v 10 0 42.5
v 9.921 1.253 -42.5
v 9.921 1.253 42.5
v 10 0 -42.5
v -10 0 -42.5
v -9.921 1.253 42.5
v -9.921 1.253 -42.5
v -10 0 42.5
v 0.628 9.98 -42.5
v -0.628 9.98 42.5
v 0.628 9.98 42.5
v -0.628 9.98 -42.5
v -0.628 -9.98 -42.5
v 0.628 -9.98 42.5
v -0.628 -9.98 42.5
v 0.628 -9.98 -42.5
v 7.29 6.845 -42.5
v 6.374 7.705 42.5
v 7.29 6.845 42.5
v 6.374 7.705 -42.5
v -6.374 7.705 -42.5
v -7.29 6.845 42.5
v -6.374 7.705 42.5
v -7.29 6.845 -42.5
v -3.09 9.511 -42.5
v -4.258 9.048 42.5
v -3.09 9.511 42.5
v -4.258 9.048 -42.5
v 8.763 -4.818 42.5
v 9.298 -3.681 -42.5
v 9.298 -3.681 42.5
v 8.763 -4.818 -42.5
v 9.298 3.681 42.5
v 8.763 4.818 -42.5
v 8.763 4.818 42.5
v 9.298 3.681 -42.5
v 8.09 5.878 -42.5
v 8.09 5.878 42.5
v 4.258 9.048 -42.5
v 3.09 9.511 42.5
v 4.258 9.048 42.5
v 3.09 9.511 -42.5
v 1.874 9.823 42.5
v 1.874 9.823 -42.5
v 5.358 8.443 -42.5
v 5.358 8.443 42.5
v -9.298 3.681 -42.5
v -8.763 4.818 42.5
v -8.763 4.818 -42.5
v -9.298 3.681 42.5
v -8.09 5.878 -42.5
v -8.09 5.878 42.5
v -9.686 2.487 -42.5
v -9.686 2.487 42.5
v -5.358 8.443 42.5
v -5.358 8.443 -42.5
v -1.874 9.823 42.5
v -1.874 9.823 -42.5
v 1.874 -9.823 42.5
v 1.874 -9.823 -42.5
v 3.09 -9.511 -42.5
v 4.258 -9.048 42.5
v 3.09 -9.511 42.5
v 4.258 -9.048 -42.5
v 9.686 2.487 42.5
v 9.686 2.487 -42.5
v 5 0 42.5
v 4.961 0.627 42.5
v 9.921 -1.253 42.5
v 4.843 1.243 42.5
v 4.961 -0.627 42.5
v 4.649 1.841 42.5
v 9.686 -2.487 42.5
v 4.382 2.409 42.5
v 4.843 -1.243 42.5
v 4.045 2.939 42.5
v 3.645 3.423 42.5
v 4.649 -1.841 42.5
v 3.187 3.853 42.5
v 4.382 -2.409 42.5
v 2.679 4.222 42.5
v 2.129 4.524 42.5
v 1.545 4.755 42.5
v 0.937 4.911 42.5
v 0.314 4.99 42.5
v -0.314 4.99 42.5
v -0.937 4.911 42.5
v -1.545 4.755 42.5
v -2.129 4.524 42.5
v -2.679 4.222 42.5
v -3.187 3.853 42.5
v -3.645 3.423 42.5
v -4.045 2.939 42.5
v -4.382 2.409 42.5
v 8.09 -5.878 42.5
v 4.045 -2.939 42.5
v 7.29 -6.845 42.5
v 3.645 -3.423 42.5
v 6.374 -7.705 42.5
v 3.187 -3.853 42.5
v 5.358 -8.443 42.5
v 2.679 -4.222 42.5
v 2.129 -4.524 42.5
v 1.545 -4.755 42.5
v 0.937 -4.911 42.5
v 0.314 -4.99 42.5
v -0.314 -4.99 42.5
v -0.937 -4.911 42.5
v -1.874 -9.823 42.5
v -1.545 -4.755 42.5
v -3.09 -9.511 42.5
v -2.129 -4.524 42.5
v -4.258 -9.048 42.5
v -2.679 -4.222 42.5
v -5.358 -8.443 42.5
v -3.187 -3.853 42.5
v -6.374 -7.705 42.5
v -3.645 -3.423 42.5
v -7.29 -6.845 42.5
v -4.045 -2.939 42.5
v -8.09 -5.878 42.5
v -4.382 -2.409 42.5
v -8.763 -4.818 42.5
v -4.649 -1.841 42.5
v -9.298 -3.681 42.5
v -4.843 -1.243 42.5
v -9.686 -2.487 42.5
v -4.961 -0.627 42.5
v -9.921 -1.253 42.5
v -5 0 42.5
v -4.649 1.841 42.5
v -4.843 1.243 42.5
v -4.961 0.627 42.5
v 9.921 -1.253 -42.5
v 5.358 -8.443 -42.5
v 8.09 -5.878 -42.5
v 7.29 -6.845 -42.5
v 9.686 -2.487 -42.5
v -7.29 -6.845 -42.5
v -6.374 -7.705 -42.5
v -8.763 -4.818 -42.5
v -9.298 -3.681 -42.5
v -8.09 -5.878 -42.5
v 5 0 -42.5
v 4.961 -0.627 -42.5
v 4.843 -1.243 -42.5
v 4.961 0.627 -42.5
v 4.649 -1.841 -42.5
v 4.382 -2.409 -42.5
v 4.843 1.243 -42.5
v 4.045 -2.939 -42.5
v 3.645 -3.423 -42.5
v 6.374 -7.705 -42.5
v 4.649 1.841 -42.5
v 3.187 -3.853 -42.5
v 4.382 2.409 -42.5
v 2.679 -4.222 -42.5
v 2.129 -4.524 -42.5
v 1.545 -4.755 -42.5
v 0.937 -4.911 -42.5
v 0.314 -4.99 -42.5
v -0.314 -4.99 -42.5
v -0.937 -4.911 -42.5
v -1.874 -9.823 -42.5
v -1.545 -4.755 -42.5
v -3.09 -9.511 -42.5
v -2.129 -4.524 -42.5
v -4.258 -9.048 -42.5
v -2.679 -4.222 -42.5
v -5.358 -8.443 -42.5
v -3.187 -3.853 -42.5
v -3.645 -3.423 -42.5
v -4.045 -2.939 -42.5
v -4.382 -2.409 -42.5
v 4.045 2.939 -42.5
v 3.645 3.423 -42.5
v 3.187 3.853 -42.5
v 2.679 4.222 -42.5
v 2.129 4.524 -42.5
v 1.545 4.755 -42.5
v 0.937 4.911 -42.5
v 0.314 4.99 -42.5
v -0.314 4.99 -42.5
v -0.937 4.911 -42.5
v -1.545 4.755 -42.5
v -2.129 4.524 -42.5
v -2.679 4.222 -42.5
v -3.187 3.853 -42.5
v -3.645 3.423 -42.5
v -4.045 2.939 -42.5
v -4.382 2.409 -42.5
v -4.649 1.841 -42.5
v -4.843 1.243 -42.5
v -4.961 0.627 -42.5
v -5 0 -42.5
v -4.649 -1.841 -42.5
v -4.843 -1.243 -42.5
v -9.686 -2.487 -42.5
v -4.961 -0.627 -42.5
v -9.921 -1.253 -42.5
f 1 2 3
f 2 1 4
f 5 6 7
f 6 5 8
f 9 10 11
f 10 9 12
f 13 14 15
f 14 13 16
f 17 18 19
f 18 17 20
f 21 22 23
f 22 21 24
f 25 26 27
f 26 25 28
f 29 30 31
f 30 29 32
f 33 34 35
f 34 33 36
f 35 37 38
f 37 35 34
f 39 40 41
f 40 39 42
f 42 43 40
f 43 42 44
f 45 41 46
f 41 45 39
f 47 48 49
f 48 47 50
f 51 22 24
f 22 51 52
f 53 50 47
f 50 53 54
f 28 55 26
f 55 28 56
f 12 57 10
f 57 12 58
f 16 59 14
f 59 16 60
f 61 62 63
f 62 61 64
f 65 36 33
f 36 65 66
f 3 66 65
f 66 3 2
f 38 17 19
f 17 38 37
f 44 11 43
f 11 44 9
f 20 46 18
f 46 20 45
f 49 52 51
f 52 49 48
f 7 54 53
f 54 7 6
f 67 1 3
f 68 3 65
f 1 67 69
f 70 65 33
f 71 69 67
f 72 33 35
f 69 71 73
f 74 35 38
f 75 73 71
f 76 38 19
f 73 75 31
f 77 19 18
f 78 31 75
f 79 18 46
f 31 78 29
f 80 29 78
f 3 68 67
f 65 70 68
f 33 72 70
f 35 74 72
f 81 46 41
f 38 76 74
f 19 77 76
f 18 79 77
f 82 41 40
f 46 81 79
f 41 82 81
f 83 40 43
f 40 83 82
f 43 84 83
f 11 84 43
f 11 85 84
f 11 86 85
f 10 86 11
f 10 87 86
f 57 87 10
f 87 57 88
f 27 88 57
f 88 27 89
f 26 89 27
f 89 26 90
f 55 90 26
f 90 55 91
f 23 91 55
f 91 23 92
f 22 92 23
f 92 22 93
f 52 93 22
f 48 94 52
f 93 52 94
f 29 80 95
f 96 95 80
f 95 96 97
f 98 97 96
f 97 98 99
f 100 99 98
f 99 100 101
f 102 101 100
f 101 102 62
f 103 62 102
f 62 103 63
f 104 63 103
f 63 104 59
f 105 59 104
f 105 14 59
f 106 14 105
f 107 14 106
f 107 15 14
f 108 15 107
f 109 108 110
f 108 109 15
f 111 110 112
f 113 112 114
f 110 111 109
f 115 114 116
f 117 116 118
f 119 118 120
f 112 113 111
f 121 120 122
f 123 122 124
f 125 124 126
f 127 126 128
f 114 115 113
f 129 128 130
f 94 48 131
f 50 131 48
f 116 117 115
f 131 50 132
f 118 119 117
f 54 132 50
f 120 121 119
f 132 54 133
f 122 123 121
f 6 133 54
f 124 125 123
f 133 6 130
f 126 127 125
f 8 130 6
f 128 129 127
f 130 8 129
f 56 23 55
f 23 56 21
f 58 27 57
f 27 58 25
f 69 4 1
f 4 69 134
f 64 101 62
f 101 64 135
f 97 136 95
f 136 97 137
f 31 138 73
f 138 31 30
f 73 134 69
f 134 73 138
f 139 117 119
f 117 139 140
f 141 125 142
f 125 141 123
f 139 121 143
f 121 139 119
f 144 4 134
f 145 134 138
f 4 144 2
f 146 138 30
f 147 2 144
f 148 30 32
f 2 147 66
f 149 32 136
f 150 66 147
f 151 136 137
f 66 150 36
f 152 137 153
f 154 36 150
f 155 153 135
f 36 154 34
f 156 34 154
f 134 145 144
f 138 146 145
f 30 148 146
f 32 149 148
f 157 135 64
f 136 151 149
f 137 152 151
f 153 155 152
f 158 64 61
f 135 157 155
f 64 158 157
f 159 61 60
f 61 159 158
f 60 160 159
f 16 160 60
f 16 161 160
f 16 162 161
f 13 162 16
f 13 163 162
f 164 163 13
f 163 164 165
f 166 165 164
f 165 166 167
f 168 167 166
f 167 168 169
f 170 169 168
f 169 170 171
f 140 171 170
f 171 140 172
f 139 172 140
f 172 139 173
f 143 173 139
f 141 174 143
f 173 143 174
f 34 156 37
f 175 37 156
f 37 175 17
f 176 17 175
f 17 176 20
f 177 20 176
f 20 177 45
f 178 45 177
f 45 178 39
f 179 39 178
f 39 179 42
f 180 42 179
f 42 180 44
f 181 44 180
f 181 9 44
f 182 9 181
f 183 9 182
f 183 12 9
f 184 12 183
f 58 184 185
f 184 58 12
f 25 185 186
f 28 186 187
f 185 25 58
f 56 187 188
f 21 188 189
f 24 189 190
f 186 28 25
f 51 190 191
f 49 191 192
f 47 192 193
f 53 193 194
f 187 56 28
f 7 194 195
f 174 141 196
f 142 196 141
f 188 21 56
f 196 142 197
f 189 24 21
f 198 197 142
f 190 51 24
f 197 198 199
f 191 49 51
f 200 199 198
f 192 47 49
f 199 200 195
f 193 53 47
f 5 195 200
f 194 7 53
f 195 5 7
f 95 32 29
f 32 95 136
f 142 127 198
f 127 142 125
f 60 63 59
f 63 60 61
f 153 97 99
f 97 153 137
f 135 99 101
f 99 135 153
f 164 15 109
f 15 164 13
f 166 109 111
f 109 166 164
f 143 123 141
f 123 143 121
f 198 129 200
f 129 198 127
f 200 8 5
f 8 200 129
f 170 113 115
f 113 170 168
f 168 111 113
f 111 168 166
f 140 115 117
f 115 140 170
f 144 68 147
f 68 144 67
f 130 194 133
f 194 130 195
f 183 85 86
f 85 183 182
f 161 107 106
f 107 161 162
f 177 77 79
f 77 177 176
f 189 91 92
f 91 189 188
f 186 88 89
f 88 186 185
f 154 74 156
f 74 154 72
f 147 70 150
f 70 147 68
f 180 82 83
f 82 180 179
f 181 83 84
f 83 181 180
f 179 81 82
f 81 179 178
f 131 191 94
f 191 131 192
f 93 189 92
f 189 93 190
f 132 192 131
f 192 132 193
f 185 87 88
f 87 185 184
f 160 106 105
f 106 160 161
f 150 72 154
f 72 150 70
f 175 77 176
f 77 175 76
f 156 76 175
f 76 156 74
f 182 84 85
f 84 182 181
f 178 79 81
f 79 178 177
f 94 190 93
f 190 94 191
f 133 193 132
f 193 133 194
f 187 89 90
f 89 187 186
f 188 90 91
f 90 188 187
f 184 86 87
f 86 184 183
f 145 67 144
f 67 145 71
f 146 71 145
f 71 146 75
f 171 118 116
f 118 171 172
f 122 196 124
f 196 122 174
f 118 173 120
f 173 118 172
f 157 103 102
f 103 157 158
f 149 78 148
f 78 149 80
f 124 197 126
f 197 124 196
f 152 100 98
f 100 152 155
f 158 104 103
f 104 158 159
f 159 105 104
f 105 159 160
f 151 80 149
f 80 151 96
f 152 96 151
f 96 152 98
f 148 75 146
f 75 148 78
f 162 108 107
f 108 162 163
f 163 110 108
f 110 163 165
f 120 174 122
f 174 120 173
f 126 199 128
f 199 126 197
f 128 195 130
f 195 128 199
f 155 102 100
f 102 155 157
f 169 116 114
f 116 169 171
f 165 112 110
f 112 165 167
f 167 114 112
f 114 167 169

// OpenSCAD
$fn = 50;


difference() {
	union() {
		translate(v = [0, 0, -42.5000000000]) {
			cylinder(h = 85, r = 10.0000000000);
		}
	}
	union() {
		translate(v = [0, 0, -100.0000000000]) {
			cylinder(h = 200, r = 5.0000000000);
		}
	}
}
